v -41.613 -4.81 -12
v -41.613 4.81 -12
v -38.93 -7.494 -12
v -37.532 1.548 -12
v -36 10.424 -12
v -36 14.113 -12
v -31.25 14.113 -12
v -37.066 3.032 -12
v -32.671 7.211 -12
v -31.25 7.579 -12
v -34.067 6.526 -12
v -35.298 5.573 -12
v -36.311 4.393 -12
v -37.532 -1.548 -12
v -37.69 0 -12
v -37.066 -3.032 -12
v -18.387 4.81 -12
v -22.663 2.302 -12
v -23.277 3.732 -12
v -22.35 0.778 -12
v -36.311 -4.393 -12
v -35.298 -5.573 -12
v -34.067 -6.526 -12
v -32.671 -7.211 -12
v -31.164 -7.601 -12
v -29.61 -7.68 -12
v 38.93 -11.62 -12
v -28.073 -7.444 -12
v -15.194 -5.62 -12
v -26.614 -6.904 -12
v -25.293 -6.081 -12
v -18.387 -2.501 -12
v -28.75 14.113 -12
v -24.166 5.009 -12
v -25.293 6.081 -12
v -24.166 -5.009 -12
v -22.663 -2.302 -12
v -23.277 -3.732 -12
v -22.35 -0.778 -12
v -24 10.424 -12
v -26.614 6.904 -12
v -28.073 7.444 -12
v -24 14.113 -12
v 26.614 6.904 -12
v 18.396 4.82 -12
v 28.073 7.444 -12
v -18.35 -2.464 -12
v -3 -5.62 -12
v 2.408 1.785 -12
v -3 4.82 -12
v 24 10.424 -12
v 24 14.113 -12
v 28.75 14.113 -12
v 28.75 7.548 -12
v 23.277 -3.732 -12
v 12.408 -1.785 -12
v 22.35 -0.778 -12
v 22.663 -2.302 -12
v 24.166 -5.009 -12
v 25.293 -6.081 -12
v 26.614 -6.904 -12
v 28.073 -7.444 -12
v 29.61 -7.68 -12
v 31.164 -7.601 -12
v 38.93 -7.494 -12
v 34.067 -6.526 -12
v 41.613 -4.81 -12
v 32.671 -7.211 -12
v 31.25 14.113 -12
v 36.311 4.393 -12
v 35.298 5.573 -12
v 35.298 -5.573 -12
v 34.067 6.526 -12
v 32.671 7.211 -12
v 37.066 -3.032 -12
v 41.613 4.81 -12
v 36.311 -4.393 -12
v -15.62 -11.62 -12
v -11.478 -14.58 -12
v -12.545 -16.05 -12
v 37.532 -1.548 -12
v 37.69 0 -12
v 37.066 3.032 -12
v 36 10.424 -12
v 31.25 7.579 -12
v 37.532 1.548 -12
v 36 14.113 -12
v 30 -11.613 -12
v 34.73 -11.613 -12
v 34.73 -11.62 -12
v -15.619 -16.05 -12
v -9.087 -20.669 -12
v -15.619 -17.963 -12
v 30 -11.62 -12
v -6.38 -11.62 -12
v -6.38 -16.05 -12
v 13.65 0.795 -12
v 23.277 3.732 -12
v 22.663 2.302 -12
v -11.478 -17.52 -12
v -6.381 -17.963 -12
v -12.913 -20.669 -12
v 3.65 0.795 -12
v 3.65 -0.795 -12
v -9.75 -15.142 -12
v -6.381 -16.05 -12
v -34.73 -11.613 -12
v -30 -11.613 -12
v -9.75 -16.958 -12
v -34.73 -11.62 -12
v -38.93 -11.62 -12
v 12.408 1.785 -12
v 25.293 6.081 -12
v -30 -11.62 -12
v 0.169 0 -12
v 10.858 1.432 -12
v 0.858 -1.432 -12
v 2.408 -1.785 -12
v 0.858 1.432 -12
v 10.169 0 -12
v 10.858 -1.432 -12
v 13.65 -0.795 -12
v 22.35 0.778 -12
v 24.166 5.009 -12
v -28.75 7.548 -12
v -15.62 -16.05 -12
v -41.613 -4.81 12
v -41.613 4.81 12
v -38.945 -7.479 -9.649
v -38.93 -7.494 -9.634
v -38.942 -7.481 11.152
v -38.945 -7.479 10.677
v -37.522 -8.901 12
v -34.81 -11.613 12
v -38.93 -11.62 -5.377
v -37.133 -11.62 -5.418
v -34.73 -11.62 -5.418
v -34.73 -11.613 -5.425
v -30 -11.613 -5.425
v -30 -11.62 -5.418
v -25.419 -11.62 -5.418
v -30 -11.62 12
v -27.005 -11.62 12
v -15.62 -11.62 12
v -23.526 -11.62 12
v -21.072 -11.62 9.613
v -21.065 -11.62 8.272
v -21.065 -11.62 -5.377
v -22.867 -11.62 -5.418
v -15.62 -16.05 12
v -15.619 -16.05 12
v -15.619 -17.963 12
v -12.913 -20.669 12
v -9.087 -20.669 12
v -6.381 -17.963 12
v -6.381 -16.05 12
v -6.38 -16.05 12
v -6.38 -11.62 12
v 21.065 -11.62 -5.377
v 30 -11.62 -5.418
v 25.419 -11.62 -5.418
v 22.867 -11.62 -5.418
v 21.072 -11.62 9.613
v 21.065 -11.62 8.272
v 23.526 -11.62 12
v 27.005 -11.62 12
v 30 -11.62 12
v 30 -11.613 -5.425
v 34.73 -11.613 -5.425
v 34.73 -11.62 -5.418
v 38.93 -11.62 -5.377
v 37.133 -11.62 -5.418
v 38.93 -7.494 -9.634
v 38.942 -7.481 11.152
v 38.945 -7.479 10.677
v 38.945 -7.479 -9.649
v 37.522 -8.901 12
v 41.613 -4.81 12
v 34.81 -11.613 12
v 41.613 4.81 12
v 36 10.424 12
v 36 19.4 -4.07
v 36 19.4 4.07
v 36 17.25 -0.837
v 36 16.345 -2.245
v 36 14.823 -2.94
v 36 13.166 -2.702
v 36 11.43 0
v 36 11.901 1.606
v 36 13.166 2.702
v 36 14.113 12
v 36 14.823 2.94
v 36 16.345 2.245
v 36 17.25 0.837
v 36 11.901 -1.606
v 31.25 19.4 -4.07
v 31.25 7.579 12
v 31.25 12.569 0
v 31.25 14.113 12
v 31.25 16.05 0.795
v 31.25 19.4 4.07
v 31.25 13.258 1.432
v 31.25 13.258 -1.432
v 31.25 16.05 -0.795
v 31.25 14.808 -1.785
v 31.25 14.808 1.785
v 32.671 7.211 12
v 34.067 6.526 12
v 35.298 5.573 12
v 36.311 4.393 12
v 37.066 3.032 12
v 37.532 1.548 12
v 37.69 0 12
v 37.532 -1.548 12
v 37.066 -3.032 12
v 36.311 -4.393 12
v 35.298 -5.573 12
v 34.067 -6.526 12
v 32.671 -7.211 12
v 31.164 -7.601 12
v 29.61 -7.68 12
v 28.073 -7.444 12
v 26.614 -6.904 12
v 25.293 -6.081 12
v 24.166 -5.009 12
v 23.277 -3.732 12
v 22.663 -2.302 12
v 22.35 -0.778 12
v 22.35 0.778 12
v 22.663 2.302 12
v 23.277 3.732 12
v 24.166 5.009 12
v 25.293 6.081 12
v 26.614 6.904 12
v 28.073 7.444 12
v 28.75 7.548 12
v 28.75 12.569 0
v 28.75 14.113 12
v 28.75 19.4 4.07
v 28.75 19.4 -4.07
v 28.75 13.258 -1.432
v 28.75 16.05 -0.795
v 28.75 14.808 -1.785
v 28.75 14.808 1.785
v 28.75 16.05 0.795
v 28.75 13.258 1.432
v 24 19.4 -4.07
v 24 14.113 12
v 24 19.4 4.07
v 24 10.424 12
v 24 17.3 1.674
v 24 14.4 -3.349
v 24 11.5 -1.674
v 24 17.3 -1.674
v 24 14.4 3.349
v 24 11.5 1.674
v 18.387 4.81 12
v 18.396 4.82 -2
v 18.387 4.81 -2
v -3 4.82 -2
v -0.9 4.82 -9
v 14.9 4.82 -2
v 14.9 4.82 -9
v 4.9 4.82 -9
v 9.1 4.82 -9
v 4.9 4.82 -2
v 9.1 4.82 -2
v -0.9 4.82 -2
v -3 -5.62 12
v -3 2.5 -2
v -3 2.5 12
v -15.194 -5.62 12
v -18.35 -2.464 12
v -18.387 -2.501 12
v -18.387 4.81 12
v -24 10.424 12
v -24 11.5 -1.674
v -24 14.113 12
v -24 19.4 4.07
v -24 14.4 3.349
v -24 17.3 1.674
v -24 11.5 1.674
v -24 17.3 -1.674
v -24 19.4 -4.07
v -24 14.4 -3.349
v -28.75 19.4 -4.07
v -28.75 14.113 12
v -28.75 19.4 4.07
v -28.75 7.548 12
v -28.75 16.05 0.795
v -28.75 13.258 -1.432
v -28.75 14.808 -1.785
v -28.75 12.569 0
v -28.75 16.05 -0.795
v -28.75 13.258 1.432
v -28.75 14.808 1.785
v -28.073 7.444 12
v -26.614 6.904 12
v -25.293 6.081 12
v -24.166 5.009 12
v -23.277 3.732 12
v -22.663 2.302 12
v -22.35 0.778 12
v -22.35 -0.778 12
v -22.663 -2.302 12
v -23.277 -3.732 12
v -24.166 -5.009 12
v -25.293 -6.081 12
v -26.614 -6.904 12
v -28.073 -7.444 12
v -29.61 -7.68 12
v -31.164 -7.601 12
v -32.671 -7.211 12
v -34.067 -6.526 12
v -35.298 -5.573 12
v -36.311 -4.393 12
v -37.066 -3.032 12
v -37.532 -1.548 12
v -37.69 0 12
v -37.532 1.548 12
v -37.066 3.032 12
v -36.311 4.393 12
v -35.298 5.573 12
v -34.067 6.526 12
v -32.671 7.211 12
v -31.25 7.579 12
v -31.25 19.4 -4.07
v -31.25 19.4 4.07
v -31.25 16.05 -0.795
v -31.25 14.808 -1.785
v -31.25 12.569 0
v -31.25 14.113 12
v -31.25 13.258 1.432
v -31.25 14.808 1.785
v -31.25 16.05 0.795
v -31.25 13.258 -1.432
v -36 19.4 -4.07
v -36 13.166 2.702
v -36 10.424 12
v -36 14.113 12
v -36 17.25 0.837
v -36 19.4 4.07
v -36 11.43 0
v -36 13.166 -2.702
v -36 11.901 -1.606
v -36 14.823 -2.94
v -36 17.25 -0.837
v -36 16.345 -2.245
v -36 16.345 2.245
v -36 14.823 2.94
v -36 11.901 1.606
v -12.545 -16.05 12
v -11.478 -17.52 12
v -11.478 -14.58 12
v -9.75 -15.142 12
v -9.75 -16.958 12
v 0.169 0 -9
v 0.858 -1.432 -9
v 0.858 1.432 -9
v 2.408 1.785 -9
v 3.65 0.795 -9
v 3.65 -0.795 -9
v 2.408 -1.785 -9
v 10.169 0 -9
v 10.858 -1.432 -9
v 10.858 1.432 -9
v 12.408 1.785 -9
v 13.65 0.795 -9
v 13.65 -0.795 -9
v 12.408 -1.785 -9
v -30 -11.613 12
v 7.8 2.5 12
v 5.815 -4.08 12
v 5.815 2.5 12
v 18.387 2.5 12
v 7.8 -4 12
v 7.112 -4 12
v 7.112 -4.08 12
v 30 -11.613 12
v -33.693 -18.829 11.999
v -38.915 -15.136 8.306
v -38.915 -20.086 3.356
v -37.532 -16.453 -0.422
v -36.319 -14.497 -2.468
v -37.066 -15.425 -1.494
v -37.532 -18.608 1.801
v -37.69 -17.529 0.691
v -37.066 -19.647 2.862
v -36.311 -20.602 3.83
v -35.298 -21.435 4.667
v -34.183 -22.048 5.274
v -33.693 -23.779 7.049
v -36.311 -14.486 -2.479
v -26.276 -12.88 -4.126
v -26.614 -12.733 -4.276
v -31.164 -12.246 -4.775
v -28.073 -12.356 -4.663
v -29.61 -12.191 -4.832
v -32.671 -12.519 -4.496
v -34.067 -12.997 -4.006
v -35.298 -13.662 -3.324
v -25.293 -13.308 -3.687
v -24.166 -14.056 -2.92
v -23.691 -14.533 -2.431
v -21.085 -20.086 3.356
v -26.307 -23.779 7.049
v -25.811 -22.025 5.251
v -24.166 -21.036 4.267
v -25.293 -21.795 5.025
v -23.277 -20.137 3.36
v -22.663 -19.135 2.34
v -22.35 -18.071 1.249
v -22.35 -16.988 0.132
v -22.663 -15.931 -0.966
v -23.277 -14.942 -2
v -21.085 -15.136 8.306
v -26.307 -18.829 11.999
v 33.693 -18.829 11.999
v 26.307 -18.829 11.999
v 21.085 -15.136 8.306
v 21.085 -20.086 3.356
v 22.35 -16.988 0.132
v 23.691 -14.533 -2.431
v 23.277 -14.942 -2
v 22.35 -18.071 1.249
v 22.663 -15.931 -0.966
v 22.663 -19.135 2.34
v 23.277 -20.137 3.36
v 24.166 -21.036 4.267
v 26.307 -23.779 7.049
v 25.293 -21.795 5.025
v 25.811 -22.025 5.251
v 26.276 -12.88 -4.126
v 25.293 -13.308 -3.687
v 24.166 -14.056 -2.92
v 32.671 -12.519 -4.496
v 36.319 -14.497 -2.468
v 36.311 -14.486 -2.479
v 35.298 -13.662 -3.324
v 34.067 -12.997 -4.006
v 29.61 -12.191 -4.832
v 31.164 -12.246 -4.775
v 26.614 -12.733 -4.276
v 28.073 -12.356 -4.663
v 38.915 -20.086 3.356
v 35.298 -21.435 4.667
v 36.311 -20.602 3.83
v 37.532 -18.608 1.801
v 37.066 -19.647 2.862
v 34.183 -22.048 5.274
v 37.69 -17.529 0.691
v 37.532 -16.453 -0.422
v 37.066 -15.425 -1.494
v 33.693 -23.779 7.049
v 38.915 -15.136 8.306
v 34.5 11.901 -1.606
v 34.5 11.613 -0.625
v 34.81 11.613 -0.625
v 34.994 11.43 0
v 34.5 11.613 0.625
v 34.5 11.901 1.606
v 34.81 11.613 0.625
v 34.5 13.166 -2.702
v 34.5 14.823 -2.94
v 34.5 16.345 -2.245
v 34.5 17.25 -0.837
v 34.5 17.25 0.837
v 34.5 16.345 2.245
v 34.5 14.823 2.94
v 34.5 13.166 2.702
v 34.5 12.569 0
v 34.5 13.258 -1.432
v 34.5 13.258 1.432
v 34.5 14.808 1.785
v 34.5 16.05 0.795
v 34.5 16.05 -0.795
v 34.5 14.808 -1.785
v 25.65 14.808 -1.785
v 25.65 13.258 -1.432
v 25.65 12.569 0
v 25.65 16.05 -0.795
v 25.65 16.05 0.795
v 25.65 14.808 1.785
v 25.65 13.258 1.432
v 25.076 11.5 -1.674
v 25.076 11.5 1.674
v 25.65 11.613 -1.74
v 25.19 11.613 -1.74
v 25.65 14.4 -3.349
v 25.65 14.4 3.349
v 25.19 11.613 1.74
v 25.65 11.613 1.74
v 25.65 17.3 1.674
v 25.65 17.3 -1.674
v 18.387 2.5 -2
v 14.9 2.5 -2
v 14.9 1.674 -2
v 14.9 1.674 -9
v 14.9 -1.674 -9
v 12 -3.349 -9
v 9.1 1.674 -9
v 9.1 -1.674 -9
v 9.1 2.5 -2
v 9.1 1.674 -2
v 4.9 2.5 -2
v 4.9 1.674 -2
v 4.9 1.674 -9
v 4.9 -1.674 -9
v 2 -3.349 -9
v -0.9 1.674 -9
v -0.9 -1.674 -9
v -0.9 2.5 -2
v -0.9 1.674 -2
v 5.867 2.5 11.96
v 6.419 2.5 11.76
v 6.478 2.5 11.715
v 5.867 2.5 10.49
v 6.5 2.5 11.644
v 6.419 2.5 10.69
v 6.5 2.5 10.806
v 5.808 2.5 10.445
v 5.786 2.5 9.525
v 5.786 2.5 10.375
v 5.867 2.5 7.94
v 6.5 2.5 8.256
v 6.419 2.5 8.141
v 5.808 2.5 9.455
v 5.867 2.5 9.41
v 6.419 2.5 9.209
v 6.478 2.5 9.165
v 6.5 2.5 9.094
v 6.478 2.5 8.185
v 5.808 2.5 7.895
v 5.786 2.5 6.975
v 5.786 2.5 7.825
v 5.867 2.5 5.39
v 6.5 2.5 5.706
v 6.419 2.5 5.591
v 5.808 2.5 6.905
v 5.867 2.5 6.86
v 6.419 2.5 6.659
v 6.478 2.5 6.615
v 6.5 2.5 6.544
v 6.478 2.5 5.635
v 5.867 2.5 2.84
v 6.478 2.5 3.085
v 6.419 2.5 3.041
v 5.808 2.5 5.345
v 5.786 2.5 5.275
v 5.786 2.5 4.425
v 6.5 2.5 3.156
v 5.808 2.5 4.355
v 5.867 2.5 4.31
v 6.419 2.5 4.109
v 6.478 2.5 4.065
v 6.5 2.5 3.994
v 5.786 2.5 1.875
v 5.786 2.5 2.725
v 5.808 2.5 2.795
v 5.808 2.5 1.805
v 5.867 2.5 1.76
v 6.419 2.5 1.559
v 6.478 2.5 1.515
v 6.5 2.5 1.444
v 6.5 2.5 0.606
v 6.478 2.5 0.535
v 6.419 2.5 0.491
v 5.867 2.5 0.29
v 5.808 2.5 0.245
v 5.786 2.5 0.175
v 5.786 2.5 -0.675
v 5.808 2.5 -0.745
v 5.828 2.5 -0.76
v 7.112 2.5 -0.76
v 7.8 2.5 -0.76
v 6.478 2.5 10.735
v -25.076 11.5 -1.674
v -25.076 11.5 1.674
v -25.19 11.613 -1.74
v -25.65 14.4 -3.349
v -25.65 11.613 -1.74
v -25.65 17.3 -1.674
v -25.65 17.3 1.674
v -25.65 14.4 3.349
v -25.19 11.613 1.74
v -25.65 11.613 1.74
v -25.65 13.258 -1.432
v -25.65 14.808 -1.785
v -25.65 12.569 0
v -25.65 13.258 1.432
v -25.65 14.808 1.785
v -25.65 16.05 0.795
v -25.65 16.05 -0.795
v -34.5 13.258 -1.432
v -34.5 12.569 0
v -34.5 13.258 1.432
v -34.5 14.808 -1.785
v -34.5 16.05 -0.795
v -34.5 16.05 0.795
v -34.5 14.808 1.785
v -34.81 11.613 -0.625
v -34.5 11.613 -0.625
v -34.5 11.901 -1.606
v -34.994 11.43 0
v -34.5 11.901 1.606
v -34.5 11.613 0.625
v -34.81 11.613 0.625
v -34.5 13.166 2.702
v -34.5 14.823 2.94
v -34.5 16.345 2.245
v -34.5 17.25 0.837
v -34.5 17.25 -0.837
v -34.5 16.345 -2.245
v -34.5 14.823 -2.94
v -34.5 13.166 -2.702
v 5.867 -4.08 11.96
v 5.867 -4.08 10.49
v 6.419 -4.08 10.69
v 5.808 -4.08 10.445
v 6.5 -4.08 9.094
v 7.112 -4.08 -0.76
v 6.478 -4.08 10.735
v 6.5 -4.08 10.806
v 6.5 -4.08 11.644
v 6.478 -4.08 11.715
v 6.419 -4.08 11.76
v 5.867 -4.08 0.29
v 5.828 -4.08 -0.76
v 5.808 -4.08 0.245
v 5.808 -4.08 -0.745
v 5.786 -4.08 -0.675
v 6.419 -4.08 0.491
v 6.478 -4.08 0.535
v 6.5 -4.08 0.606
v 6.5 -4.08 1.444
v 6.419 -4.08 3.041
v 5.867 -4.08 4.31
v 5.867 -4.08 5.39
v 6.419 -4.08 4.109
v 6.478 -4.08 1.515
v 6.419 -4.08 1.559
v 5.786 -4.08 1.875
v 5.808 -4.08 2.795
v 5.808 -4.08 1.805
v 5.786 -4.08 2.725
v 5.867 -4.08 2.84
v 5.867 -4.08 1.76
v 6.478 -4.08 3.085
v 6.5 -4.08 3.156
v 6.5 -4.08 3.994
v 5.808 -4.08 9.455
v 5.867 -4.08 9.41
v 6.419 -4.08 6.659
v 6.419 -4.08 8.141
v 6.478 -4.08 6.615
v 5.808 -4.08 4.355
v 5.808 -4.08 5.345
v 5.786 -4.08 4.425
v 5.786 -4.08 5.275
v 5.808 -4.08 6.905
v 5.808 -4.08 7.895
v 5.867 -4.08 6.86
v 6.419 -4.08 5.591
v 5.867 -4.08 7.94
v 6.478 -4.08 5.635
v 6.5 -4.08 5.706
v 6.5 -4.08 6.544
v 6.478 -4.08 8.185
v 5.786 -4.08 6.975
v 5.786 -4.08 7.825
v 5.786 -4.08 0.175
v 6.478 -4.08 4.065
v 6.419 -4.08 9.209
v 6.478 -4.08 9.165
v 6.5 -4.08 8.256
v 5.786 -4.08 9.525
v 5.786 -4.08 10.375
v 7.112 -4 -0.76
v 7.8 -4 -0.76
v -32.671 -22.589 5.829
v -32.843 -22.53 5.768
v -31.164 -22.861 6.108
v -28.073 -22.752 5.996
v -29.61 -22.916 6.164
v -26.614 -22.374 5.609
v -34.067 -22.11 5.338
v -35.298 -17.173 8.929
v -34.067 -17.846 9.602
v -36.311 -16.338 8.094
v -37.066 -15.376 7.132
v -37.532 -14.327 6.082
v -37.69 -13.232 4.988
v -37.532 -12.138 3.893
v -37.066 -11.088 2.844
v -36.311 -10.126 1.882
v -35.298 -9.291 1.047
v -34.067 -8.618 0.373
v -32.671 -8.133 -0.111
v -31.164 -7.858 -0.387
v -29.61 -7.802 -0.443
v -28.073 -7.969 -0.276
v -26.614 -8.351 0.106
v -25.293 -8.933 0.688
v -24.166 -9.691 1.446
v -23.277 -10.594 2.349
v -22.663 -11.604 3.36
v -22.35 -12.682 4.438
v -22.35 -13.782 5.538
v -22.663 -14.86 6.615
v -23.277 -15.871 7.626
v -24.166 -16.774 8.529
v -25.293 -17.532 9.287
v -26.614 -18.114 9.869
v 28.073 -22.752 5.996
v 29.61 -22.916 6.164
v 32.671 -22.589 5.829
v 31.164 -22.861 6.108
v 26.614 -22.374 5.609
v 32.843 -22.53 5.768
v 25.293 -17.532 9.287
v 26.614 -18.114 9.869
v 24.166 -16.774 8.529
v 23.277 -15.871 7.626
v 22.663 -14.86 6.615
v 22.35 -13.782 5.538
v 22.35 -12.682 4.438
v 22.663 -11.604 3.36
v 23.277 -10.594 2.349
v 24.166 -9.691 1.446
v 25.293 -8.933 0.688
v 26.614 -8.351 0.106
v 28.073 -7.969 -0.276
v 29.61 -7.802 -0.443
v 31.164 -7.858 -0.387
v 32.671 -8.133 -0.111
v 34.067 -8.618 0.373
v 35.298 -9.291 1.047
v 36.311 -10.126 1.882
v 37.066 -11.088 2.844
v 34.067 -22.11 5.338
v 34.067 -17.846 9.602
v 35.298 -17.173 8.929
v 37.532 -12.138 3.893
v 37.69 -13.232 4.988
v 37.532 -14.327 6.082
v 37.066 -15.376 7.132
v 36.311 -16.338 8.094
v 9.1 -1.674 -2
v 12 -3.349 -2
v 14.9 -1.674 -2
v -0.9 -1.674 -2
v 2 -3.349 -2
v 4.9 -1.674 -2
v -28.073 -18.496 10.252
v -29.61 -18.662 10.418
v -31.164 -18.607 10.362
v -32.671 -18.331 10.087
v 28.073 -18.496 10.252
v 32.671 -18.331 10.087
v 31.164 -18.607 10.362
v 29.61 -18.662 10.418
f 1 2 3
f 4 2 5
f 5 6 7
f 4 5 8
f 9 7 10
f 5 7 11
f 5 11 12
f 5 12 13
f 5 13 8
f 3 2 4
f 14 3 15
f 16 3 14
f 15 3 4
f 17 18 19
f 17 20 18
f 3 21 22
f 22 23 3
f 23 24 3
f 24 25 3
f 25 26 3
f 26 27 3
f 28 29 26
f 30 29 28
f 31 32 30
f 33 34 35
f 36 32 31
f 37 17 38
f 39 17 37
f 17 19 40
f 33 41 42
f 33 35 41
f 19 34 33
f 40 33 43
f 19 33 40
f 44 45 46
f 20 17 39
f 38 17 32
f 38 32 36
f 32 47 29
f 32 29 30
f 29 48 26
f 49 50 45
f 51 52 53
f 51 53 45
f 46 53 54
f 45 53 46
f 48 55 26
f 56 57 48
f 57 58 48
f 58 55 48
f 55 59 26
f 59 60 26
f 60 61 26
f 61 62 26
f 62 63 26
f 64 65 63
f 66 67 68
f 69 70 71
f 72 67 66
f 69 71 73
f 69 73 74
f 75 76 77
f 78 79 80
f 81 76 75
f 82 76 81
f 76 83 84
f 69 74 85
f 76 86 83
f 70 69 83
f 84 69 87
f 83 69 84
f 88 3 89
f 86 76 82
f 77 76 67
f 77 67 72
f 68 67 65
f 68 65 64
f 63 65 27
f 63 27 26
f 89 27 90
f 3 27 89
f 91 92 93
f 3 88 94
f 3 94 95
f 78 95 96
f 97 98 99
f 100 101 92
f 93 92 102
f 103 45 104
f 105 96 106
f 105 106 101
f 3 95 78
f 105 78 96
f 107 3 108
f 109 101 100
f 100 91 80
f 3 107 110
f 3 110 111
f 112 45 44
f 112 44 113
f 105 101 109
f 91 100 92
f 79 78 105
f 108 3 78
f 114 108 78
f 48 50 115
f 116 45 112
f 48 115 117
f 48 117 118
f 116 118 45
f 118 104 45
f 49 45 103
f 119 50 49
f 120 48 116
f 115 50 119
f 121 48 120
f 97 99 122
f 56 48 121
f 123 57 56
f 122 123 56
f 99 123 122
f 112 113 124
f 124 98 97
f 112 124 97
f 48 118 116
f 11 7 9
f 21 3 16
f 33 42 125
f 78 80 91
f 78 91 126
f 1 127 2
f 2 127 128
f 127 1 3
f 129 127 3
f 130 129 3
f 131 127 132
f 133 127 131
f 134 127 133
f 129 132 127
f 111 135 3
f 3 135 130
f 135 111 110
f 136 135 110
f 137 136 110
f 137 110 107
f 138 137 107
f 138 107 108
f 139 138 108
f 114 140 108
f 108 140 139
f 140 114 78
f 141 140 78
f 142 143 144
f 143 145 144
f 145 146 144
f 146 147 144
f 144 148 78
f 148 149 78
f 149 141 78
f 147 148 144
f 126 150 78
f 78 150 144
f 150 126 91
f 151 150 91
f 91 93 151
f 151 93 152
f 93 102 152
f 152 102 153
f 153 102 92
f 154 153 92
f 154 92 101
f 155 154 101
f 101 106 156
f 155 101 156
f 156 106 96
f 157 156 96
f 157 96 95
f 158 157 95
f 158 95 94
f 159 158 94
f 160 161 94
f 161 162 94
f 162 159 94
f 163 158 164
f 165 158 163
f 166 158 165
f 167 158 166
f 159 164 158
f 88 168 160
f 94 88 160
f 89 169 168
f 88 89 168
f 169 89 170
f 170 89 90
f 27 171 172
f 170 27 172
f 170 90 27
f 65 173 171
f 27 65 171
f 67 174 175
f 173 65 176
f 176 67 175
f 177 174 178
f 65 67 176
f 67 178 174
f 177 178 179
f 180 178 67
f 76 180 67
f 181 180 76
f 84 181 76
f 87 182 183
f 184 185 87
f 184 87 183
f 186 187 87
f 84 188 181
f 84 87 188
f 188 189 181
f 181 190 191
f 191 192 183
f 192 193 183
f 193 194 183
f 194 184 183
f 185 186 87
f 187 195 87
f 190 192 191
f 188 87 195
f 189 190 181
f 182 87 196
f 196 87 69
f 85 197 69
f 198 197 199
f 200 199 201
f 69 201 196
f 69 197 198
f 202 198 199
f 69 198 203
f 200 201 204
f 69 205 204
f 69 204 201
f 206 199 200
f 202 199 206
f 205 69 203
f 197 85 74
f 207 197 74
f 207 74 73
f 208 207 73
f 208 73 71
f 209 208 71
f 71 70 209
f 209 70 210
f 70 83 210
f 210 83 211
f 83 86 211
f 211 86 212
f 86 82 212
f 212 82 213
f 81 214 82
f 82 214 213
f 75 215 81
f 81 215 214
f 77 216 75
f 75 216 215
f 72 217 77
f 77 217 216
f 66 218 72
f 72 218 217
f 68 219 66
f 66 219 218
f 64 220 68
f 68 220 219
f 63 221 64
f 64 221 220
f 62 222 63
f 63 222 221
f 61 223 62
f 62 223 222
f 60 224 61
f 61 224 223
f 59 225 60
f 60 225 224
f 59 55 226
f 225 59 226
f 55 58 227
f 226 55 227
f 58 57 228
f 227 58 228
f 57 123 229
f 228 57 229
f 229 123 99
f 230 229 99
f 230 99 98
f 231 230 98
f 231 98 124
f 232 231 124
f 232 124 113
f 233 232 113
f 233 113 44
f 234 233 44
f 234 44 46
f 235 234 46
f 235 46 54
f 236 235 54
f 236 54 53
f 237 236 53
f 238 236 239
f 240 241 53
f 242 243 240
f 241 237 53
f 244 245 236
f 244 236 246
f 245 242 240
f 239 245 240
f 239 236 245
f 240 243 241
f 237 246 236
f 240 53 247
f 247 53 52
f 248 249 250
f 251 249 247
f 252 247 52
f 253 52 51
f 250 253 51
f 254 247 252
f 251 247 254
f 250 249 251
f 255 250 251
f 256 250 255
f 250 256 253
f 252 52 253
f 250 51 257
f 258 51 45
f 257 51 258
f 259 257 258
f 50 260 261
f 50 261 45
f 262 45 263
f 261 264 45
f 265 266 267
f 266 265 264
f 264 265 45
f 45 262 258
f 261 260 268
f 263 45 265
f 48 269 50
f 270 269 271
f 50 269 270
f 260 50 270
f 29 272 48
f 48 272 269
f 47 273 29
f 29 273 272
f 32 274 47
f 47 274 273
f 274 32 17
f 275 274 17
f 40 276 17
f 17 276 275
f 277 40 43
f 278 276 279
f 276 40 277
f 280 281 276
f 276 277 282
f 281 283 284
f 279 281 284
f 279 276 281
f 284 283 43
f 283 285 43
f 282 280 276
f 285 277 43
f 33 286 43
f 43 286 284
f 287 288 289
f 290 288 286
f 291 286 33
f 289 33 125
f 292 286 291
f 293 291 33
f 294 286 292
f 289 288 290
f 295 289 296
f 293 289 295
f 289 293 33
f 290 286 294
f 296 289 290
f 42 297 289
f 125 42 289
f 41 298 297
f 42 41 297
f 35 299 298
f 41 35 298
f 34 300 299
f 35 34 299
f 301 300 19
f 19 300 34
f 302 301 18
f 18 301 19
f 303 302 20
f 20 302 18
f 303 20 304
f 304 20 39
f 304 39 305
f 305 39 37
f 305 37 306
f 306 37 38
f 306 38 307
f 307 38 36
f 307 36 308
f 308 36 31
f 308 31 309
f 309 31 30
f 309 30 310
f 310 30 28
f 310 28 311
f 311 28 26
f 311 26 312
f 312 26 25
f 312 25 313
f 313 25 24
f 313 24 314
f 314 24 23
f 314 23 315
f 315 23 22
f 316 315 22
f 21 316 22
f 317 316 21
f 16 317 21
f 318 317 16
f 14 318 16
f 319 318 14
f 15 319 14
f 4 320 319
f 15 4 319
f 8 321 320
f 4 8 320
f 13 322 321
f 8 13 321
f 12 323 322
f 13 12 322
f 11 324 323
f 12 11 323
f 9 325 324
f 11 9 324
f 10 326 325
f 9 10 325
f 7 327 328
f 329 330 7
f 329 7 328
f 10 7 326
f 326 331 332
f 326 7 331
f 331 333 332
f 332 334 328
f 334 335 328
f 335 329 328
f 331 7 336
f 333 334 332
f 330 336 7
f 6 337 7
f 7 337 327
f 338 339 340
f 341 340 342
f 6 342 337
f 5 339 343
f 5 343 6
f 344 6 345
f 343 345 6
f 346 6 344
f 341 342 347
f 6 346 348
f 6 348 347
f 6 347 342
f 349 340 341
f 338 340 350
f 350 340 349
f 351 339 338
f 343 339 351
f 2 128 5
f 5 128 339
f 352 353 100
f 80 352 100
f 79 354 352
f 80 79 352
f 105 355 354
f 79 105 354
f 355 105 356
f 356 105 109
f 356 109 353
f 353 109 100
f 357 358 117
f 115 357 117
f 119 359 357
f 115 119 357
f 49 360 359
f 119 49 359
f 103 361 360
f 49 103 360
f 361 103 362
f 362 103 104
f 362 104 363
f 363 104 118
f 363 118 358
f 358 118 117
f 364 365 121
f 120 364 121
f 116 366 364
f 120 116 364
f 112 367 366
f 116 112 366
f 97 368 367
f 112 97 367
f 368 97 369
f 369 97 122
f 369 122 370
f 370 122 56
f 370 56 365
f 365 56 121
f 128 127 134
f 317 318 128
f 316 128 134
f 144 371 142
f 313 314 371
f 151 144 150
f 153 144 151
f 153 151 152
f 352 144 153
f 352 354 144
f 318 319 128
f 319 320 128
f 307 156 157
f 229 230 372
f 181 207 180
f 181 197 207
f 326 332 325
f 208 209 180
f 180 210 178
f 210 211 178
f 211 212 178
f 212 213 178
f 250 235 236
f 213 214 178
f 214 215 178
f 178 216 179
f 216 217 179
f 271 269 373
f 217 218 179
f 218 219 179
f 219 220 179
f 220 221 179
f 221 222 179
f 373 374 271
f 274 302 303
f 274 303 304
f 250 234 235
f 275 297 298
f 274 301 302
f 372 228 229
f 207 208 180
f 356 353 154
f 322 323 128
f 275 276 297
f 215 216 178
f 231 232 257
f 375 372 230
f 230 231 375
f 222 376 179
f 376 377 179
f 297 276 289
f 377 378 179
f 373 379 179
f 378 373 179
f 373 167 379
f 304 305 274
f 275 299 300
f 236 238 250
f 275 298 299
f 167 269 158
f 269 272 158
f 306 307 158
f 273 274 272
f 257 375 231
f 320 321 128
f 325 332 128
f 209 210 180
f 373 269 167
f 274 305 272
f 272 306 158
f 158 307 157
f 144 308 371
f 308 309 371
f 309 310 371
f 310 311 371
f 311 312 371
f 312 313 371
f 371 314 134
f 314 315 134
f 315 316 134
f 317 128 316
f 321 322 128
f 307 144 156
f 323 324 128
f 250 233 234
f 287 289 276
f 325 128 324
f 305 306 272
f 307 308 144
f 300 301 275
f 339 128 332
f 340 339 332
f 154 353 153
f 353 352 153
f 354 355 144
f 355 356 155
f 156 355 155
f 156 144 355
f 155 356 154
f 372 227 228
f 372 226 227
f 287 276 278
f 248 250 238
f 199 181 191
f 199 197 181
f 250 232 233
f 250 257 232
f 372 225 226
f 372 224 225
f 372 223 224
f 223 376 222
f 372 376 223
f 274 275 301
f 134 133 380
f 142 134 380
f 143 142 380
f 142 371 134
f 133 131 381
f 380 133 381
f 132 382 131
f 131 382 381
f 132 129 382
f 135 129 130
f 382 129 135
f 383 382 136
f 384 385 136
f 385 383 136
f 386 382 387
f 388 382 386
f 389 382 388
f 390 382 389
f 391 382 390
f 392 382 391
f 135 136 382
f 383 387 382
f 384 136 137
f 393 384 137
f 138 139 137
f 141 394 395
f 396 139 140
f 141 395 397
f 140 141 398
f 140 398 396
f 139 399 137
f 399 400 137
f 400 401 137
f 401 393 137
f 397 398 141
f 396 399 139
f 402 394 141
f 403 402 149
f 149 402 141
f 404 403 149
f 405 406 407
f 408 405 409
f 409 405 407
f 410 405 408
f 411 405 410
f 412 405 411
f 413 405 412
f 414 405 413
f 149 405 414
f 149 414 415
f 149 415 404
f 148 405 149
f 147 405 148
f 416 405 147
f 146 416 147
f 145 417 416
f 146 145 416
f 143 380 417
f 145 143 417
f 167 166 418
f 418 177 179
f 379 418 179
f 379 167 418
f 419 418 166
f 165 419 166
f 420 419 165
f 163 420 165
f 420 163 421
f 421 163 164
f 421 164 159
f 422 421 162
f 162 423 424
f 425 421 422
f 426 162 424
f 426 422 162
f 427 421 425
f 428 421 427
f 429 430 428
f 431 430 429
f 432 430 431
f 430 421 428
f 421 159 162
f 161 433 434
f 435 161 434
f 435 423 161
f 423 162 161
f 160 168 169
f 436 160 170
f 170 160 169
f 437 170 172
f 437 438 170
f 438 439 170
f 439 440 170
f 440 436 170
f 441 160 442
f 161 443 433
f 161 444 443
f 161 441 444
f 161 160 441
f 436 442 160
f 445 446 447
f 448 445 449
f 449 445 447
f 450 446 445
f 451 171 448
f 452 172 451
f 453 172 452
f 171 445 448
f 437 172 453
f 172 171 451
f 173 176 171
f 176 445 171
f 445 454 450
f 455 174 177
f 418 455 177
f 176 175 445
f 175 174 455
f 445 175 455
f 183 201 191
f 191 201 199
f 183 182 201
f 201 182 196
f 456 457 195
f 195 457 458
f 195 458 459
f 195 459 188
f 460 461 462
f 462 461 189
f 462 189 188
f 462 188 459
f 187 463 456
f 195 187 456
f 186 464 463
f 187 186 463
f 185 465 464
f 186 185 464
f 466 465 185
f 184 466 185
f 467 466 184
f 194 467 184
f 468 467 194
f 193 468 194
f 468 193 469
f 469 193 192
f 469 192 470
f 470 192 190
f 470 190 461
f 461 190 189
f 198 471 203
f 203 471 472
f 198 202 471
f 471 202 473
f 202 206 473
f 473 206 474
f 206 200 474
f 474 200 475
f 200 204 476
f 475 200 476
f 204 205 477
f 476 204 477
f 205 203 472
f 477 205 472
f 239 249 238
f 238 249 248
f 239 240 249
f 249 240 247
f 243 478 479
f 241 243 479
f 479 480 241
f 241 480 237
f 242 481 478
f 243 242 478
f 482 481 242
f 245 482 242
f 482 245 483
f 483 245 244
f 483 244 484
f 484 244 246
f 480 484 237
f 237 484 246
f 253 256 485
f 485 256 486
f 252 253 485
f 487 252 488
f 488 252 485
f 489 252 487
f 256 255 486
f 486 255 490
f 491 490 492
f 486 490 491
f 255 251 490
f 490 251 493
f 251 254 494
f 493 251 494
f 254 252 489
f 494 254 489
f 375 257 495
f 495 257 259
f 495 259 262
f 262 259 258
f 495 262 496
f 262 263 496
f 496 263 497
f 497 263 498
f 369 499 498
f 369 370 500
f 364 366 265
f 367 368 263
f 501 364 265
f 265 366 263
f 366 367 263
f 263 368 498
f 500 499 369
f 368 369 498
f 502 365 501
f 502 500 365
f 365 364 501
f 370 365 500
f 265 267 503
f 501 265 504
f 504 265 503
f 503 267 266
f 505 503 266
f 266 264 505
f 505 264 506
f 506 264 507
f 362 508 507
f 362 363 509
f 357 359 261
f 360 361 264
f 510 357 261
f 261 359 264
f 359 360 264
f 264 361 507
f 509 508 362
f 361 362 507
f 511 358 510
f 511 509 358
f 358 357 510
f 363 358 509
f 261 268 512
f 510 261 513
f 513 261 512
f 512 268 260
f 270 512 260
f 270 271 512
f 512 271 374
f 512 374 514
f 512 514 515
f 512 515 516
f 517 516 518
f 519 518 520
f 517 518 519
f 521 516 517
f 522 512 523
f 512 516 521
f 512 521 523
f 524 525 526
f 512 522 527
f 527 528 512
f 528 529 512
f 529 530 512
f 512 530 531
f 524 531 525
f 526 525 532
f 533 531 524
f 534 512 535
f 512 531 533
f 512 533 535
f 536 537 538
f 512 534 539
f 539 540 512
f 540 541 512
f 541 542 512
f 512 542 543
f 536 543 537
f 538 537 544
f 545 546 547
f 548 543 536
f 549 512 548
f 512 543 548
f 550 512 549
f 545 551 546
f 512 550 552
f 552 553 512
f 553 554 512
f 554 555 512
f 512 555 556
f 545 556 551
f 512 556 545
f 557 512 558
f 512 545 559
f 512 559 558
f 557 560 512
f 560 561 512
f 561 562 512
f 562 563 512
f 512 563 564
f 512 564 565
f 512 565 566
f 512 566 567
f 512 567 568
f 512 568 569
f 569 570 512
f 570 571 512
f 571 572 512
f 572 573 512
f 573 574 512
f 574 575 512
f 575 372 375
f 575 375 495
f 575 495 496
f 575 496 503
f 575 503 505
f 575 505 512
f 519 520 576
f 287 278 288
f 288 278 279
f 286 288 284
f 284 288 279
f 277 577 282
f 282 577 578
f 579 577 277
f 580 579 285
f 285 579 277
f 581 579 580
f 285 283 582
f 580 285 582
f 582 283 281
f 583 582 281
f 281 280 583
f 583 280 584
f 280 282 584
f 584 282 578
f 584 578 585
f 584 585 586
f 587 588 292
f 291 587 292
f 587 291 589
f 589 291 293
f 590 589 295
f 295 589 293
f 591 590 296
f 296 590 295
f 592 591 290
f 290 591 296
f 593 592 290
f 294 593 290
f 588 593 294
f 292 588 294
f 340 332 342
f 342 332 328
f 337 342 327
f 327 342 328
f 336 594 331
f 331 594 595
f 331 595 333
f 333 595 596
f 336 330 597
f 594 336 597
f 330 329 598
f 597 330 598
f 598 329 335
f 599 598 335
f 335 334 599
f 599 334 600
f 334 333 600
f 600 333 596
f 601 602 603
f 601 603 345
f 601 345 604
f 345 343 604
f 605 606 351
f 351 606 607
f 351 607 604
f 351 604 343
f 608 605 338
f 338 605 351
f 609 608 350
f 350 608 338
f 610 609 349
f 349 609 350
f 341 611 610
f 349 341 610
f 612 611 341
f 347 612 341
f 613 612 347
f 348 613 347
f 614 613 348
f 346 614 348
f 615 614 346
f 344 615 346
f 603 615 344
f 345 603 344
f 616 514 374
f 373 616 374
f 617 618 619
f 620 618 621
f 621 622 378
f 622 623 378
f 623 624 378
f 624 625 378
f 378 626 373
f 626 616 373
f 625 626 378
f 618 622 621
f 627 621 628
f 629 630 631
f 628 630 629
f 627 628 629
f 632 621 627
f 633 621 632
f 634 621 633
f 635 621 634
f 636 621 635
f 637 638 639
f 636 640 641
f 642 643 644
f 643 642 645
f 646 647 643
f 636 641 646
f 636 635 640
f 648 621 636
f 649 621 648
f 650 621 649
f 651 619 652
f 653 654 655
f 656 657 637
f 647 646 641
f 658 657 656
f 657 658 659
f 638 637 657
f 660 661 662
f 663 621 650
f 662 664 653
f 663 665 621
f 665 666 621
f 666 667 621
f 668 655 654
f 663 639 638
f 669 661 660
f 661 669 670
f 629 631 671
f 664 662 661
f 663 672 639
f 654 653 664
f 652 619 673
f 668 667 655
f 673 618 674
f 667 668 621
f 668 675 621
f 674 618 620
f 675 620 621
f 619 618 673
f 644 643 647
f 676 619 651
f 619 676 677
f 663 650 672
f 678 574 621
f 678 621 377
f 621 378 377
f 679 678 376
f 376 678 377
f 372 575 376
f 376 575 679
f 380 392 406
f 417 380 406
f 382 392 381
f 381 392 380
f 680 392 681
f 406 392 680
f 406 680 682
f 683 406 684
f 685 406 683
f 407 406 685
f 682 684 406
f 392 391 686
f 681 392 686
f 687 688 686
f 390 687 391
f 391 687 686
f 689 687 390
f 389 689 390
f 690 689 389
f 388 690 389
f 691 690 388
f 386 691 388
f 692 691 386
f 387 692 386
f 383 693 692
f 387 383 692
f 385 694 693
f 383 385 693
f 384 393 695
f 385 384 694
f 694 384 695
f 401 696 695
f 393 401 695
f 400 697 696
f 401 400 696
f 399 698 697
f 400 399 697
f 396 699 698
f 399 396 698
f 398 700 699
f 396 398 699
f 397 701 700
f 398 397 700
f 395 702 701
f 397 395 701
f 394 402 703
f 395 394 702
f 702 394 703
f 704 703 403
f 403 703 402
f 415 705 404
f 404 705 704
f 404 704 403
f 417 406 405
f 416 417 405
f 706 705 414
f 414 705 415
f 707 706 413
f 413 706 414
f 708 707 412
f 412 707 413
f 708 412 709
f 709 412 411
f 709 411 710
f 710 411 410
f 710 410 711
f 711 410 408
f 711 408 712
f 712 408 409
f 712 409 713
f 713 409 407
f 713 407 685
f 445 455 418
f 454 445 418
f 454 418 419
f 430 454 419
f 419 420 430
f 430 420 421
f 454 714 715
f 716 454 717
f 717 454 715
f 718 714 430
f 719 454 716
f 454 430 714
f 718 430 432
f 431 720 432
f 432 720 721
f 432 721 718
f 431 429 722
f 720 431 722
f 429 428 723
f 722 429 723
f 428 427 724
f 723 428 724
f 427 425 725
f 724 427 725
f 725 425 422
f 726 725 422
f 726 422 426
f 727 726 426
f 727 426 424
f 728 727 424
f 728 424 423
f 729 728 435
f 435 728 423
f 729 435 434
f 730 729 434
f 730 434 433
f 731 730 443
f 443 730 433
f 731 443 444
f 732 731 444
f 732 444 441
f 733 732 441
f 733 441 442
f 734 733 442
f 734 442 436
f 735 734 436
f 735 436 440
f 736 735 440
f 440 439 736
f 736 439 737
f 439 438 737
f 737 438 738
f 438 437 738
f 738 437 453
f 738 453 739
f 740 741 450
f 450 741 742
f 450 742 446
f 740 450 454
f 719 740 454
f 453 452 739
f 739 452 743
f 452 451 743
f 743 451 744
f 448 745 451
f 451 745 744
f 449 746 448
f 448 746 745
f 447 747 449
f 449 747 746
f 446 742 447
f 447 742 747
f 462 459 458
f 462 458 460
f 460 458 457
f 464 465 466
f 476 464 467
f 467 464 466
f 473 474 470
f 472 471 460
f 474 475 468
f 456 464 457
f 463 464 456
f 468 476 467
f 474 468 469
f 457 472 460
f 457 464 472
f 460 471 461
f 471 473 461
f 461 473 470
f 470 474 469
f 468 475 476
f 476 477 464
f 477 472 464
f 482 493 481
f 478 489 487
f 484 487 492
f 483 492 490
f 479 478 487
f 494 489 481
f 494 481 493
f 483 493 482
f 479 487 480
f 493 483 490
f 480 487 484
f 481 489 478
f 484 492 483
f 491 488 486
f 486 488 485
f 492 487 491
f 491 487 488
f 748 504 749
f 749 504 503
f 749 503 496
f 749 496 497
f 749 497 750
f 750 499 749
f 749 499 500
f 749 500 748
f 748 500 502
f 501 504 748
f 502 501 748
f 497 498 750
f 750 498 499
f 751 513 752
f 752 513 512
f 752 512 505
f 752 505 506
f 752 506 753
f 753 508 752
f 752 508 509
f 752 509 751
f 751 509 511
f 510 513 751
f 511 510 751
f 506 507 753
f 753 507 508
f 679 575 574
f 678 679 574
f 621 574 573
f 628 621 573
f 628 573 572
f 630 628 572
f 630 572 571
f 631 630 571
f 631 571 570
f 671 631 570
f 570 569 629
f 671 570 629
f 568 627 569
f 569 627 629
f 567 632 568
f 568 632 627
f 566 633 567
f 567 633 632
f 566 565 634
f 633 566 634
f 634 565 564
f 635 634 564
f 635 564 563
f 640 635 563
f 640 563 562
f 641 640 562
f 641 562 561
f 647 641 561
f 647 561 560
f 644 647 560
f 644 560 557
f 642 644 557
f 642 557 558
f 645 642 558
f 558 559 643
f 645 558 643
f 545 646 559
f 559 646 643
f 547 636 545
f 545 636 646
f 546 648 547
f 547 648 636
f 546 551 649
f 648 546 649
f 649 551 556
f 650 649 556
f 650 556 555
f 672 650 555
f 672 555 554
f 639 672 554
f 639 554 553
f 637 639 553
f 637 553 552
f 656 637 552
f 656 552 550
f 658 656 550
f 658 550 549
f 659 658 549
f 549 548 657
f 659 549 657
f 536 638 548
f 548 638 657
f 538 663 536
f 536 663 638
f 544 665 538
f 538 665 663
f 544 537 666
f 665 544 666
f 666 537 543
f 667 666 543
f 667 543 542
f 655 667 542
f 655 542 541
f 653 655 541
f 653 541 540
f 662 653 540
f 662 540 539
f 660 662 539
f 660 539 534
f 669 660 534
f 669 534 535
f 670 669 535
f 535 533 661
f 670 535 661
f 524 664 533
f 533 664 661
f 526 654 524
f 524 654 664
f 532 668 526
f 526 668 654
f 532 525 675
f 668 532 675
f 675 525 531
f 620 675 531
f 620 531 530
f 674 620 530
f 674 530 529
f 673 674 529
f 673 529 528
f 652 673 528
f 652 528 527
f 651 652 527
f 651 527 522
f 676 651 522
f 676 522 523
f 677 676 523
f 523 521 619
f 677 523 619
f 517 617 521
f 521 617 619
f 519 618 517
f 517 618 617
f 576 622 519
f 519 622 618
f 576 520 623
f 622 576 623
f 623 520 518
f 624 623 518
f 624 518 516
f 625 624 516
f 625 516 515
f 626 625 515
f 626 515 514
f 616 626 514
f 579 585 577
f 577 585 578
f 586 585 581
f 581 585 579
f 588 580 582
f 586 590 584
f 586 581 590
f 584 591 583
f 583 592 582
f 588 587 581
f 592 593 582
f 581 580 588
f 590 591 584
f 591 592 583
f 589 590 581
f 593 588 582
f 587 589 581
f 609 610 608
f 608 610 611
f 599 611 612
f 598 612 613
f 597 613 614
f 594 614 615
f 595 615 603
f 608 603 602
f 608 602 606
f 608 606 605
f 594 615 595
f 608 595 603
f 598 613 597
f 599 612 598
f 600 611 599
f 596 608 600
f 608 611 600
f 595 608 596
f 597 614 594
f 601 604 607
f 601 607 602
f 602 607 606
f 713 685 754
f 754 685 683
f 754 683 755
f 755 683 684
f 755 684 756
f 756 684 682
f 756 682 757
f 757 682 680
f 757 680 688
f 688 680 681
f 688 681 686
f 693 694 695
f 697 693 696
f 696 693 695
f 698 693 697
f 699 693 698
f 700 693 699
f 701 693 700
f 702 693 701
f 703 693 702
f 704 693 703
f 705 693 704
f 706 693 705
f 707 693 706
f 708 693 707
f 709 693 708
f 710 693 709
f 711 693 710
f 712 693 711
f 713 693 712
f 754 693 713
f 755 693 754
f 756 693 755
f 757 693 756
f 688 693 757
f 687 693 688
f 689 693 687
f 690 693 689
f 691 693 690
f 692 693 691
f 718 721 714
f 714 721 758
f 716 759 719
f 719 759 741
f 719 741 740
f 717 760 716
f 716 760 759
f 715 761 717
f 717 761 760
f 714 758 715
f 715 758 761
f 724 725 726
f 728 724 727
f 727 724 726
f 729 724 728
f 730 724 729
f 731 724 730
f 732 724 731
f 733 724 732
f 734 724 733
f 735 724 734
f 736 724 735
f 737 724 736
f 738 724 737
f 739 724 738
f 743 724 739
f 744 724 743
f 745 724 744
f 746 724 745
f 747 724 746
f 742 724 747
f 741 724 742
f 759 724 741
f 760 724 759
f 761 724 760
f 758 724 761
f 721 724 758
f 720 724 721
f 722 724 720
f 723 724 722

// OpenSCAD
// file: polyhole.scad
// based on ployhole.scad by nophead
// http://hydraraptor.blogspot.com/2011/02/polyholes.html
// http://www.thingiverse.com/thing:6118

module polyhole(h, d) {
    n = max(round(2 * d),3);
    rotate([0,0,180])
        cylinder(h = h, r = (d / 2) / cos (180 / n), $fn = n, center=true);
}
// file: m3.scad
//name == "M3" 		? [3, 5.5, 3, 5.5, 2.4, 7, 0.5] :	
module m3_nut(width=5.5, thickness=3) {
    cylinder(r=(width / sin(60) / 2), h=thickness, center=true, $fn=6);
}
// main file
include <timing_belts.scad>
include <m3.scad>
include <polyhole.scad>

tolerance        = 0.3;

h_bearing        = 24;
d_bearing        = 15 + tolerance;
r_bearing        = d_bearing / 2;
t_wall           = 4;
t_plate          = 6;
distance_rod     = 60; // middle to middle
w_plate          = distance_rod - 2 * (r_bearing);
distance_magnets = 60;
d_magnet         = 15 + tolerance; // outer diameter of magnet
r_magnet         = d_magnet / 2;
h_magnet         = 6; // h_bearing of magnet
w_belt           = 7;
h_belt_mount     = h_bearing / 2;


module bearing_mount() {
    difference() {
        union() {
            difference() {
                union() {
                    // outer hull of bearing mount
                    rotate([0, 0, 22.5])
                        cylinder(r=r_bearing + t_wall + 0.92, h=h_bearing, center=true, $fn=8);

                    // magnet mount
                    hull() {
                        translate([0, -4.7, 0])
                            cube([d_magnet + 2.6, 1, h_bearing], center=true);
                        
                        translate([0, -15, 3.22]) 
                        rotate([135, 0, 0])
                        rotate([0, 0, 22.5])
                            cylinder(h=h_magnet + 1, r=r_magnet + 2, center=true, $fn=8);
                    }

                    // plate
                    translate([distance_rod/4, -(t_plate/2 + w_belt/2 + 2.12), 0])
                        cube([distance_rod/2, t_plate, h_bearing], center=true);

                    translate([-6.83 , -(t_plate/2 + w_belt/2 + 2.12), -1.5])
                        cube([4.2, t_plate, h_bearing - 3], center=true);

                    translate([r_bearing + t_wall, -6, 0])
                    rotate([0, 0, 45])
                        cube([5, 5, h_bearing], center=true);
                }
                
                // hole for bearing
                polyhole(h_bearing+1, d_bearing);
            }

            translate([0,0.9,0])
            difference() {            
                intersection() {
                    translate([0, 13, 0])
                        cube([12, 11, h_bearing], center=true);

                    scale([1.0, 1.0, 1.5])
                    rotate([45, 0, 0])
                        cube([12, h_bearing*1.25, h_bearing*1.25], center=true);
                }
                
                translate([0, 13.5, 0])
                rotate([90, 0, 90])
                union() {
                    polyhole(17, 3.3);

                    translate([0, 0, 6])
                    rotate([0, 0, 30])
                        m3_nut(width=5.8);

                    translate([0, 0, -6])
                        polyhole(3, 5.7);     
                }
            }
        }
        
        translate([0, -15, 3.22])
        rotate([135, 0, 0])
        translate([0, 0, 1])
            polyhole(h_magnet + 1, d_magnet);

        translate([0, 10, 0])            
            cube([2.5, 20, h_bearing + 1], center=true);
    }
};

module belt_mount() {
    difference() {
        cube([13, w_belt, h_belt_mount], center=true);

        translate([0, 0.5, 10.2])
        rotate([0, 90, 0])
        rotate([-90, 0, 0])
	        scale(1.02) belt_len(profile = tT2_5, belt_width = w_belt+1, len = h_belt_mount * 2);
    
        translate([0.8, 0, 0])
            cube([1, w_belt + 1, h_belt_mount + 1], center=true);
    }
}

module carriage() {
    union() {
        translate([-(distance_rod / 2), 0, 0])
            bearing_mount();
        
        translate([(distance_rod / 2), 0, 0])
        mirror([1, 0, 0])
            bearing_mount();

        // belt mount
        difference() {    
            translate([(distance_rod - d_bearing) / 4 - 1.5, -2, h_bearing/4 - 1])
                cube([(distance_rod - d_bearing) / 2 + 3, w_belt + 2, h_bearing/2 + 2], center=true);
        
            translate([6.5, 0, h_bearing/2 + 0.5])
            rotate([0, 90, 0])
            rotate([-90, 0, 0])
	            scale(1.02) belt_len(profile = tT2_5, belt_width = w_belt+1, len = h_bearing / 2 + 1);
        
            translate([7.3, 0, h_bearing/4])
                cube([1, w_belt + 1, h_bearing/2 + 1.52], center=true);
        }
       
        // belt tensioner
        difference() {
            translate([(distance_rod - d_bearing) / 4 - 1.5, -0.43, -(h_bearing/4) - 1])
                cube([(distance_rod - d_bearing) / 2 + 3, w_belt + 3.5, h_bearing/2 - 2], center=true);
        
            translate([12, 0, -5])
            rotate([0, 0, 30])
                m3_nut(width=5.8, thickness=8);

            translate([12, 2, -5])
                cube([5.8, 6, 8], center=true);    

            translate([12, 0, -10])
                polyhole(10, 3.3);

            translate([2, 0, -5])
            rotate([0, 0, 30])
                m3_nut(width=5.8, thickness=8);

            translate([2, 2, -5])
                cube([5.8, 6, 8], center=true);    

            translate([2, 0, -10])
                polyhole(10, 3.3);
        }
        
        translate([-(23-12), -(7.1/2 + 8 / 2 + 1 + 5 + 2.5), 0])
        difference() {
            union() {
                translate([0, 5, 0])
                    cube([9.24, 10, h_bearing], center=true);

                rotate([0, 0, 22.5])
                    cylinder(r=5, h=h_bearing, center=true, $fn=8);
            }
                polyhole(h_bearing + 1, 2.5);
        }
    }
};

//bearing_mount();
carriage();
